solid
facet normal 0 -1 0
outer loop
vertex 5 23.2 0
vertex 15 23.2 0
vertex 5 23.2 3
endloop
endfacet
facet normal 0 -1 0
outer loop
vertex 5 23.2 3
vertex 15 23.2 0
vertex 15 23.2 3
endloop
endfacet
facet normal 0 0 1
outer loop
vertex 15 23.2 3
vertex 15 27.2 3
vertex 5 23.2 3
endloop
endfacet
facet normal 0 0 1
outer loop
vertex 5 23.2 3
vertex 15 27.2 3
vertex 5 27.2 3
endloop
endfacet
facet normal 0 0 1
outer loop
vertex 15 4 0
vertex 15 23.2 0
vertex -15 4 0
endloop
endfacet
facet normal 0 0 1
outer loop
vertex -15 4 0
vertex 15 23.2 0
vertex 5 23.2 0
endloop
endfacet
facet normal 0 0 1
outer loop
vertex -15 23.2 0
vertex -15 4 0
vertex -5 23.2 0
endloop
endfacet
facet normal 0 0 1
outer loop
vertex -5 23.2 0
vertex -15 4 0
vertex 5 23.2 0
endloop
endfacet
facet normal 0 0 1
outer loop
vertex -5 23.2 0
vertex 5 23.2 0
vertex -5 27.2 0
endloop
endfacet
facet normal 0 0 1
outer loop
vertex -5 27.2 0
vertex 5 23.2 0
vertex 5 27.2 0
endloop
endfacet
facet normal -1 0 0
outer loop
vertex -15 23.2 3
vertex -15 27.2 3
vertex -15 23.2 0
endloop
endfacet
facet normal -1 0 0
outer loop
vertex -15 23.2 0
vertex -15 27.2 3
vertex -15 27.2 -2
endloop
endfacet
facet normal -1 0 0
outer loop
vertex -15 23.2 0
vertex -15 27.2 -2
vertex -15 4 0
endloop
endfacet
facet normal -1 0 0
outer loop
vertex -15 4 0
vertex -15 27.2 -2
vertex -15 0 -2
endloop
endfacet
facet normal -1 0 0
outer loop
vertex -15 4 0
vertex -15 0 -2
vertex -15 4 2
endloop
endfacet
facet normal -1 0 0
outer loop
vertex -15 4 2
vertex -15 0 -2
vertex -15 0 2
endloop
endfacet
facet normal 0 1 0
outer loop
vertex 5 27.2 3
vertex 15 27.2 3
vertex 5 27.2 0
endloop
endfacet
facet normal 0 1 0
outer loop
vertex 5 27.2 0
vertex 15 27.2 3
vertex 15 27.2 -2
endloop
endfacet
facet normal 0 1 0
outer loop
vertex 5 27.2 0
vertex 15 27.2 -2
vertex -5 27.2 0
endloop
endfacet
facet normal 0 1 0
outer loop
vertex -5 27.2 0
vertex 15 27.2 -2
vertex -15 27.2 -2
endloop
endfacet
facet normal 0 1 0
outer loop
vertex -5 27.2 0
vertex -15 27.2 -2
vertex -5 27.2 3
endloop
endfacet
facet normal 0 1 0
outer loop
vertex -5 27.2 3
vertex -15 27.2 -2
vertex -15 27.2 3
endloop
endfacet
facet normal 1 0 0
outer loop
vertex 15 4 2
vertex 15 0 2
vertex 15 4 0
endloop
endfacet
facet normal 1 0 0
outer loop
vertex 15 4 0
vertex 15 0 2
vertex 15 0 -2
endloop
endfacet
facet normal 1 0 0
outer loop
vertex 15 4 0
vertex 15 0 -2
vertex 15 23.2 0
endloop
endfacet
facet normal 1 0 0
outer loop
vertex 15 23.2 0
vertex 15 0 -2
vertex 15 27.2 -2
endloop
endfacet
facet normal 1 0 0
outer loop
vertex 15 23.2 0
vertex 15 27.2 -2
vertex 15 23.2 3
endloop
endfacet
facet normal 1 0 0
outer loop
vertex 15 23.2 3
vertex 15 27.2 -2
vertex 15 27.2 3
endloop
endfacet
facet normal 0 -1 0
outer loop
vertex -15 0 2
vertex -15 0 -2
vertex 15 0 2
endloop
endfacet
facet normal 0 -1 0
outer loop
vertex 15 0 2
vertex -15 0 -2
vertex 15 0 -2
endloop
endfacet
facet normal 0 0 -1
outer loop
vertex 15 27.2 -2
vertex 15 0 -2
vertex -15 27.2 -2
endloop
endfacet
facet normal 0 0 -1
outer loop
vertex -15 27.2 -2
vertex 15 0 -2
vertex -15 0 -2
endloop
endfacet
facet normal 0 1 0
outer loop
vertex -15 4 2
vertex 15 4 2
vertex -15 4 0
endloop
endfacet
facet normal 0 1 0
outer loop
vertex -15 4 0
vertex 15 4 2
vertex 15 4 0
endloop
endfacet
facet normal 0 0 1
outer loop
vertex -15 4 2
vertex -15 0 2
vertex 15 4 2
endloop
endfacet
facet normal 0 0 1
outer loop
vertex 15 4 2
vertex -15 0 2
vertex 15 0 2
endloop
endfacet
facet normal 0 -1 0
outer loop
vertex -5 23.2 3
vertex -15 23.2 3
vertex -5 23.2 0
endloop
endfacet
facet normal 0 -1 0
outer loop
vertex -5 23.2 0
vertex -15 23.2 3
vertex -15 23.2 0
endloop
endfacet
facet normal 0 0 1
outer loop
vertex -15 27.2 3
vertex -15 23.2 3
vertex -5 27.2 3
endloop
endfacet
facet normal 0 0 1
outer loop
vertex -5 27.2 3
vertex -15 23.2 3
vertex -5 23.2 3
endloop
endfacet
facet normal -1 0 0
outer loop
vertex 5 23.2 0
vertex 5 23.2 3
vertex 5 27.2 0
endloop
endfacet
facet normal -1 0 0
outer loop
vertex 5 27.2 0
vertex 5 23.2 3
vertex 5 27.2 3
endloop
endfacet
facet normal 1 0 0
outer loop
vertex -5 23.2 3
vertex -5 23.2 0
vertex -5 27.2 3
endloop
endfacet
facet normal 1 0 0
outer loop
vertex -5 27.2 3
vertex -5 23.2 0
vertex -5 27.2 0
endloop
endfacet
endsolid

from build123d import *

# Parameters (mm, degrees)
SKETCH1_W           = 30
SKETCH1_H           = 27.2
BOSS_EXTRUDE1_DEPTH = 2
SKETCH1_4_W         = 30
SKETCH1_4_H         = 4
BOSS_EXTRUDE2_DEPTH = 2
SKETCH1_5_W         = 30
SKETCH1_5_H         = 4
BOSS_EXTRUDE3_DEPTH = 3
CUT_EXTRUDE1_REACH  = 29.789
SKETCH3_W           = 10
SKETCH3_H           = 3


with BuildPart() as part:
    # Sketch1 → Boss-Extrude1 (new body)
    with BuildSketch(Plane.XY):
        with Locations((0, 13.6)):
            Rectangle(SKETCH1_W, SKETCH1_H)
    extrude(amount=-BOSS_EXTRUDE1_DEPTH)

    # Sketch1<4> → Boss-Extrude2 (add)
    with BuildSketch(Plane.XY):
        with Locations((0, 2)):
            Rectangle(SKETCH1_4_W, SKETCH1_4_H)
    extrude(amount=BOSS_EXTRUDE2_DEPTH)

    # Sketch1<5> → Boss-Extrude3 (add)
    with BuildSketch(Plane.XY):
        with Locations((0, 25.2)):
            Rectangle(SKETCH1_5_W, SKETCH1_5_H)
    extrude(amount=BOSS_EXTRUDE3_DEPTH)

    # Sketch3 → Cut-Extrude1 (cut, up to next)
    with BuildSketch(Plane.XZ.offset(-23.2), mode=Mode.PRIVATE) as cut_extrude1_sk1:
        with Locations((0, 1.5)):
            Rectangle(SKETCH3_W, SKETCH3_H)
    cut_extrude1_tool1 = extrude(cut_extrude1_sk1.sketch, amount=-CUT_EXTRUDE1_REACH, mode=Mode.PRIVATE) & part.part
    add(cut_extrude1_tool1.solids().sort_by_distance((0, 23.2, 1.5))[0], mode=Mode.SUBTRACT)


solid = part.part
